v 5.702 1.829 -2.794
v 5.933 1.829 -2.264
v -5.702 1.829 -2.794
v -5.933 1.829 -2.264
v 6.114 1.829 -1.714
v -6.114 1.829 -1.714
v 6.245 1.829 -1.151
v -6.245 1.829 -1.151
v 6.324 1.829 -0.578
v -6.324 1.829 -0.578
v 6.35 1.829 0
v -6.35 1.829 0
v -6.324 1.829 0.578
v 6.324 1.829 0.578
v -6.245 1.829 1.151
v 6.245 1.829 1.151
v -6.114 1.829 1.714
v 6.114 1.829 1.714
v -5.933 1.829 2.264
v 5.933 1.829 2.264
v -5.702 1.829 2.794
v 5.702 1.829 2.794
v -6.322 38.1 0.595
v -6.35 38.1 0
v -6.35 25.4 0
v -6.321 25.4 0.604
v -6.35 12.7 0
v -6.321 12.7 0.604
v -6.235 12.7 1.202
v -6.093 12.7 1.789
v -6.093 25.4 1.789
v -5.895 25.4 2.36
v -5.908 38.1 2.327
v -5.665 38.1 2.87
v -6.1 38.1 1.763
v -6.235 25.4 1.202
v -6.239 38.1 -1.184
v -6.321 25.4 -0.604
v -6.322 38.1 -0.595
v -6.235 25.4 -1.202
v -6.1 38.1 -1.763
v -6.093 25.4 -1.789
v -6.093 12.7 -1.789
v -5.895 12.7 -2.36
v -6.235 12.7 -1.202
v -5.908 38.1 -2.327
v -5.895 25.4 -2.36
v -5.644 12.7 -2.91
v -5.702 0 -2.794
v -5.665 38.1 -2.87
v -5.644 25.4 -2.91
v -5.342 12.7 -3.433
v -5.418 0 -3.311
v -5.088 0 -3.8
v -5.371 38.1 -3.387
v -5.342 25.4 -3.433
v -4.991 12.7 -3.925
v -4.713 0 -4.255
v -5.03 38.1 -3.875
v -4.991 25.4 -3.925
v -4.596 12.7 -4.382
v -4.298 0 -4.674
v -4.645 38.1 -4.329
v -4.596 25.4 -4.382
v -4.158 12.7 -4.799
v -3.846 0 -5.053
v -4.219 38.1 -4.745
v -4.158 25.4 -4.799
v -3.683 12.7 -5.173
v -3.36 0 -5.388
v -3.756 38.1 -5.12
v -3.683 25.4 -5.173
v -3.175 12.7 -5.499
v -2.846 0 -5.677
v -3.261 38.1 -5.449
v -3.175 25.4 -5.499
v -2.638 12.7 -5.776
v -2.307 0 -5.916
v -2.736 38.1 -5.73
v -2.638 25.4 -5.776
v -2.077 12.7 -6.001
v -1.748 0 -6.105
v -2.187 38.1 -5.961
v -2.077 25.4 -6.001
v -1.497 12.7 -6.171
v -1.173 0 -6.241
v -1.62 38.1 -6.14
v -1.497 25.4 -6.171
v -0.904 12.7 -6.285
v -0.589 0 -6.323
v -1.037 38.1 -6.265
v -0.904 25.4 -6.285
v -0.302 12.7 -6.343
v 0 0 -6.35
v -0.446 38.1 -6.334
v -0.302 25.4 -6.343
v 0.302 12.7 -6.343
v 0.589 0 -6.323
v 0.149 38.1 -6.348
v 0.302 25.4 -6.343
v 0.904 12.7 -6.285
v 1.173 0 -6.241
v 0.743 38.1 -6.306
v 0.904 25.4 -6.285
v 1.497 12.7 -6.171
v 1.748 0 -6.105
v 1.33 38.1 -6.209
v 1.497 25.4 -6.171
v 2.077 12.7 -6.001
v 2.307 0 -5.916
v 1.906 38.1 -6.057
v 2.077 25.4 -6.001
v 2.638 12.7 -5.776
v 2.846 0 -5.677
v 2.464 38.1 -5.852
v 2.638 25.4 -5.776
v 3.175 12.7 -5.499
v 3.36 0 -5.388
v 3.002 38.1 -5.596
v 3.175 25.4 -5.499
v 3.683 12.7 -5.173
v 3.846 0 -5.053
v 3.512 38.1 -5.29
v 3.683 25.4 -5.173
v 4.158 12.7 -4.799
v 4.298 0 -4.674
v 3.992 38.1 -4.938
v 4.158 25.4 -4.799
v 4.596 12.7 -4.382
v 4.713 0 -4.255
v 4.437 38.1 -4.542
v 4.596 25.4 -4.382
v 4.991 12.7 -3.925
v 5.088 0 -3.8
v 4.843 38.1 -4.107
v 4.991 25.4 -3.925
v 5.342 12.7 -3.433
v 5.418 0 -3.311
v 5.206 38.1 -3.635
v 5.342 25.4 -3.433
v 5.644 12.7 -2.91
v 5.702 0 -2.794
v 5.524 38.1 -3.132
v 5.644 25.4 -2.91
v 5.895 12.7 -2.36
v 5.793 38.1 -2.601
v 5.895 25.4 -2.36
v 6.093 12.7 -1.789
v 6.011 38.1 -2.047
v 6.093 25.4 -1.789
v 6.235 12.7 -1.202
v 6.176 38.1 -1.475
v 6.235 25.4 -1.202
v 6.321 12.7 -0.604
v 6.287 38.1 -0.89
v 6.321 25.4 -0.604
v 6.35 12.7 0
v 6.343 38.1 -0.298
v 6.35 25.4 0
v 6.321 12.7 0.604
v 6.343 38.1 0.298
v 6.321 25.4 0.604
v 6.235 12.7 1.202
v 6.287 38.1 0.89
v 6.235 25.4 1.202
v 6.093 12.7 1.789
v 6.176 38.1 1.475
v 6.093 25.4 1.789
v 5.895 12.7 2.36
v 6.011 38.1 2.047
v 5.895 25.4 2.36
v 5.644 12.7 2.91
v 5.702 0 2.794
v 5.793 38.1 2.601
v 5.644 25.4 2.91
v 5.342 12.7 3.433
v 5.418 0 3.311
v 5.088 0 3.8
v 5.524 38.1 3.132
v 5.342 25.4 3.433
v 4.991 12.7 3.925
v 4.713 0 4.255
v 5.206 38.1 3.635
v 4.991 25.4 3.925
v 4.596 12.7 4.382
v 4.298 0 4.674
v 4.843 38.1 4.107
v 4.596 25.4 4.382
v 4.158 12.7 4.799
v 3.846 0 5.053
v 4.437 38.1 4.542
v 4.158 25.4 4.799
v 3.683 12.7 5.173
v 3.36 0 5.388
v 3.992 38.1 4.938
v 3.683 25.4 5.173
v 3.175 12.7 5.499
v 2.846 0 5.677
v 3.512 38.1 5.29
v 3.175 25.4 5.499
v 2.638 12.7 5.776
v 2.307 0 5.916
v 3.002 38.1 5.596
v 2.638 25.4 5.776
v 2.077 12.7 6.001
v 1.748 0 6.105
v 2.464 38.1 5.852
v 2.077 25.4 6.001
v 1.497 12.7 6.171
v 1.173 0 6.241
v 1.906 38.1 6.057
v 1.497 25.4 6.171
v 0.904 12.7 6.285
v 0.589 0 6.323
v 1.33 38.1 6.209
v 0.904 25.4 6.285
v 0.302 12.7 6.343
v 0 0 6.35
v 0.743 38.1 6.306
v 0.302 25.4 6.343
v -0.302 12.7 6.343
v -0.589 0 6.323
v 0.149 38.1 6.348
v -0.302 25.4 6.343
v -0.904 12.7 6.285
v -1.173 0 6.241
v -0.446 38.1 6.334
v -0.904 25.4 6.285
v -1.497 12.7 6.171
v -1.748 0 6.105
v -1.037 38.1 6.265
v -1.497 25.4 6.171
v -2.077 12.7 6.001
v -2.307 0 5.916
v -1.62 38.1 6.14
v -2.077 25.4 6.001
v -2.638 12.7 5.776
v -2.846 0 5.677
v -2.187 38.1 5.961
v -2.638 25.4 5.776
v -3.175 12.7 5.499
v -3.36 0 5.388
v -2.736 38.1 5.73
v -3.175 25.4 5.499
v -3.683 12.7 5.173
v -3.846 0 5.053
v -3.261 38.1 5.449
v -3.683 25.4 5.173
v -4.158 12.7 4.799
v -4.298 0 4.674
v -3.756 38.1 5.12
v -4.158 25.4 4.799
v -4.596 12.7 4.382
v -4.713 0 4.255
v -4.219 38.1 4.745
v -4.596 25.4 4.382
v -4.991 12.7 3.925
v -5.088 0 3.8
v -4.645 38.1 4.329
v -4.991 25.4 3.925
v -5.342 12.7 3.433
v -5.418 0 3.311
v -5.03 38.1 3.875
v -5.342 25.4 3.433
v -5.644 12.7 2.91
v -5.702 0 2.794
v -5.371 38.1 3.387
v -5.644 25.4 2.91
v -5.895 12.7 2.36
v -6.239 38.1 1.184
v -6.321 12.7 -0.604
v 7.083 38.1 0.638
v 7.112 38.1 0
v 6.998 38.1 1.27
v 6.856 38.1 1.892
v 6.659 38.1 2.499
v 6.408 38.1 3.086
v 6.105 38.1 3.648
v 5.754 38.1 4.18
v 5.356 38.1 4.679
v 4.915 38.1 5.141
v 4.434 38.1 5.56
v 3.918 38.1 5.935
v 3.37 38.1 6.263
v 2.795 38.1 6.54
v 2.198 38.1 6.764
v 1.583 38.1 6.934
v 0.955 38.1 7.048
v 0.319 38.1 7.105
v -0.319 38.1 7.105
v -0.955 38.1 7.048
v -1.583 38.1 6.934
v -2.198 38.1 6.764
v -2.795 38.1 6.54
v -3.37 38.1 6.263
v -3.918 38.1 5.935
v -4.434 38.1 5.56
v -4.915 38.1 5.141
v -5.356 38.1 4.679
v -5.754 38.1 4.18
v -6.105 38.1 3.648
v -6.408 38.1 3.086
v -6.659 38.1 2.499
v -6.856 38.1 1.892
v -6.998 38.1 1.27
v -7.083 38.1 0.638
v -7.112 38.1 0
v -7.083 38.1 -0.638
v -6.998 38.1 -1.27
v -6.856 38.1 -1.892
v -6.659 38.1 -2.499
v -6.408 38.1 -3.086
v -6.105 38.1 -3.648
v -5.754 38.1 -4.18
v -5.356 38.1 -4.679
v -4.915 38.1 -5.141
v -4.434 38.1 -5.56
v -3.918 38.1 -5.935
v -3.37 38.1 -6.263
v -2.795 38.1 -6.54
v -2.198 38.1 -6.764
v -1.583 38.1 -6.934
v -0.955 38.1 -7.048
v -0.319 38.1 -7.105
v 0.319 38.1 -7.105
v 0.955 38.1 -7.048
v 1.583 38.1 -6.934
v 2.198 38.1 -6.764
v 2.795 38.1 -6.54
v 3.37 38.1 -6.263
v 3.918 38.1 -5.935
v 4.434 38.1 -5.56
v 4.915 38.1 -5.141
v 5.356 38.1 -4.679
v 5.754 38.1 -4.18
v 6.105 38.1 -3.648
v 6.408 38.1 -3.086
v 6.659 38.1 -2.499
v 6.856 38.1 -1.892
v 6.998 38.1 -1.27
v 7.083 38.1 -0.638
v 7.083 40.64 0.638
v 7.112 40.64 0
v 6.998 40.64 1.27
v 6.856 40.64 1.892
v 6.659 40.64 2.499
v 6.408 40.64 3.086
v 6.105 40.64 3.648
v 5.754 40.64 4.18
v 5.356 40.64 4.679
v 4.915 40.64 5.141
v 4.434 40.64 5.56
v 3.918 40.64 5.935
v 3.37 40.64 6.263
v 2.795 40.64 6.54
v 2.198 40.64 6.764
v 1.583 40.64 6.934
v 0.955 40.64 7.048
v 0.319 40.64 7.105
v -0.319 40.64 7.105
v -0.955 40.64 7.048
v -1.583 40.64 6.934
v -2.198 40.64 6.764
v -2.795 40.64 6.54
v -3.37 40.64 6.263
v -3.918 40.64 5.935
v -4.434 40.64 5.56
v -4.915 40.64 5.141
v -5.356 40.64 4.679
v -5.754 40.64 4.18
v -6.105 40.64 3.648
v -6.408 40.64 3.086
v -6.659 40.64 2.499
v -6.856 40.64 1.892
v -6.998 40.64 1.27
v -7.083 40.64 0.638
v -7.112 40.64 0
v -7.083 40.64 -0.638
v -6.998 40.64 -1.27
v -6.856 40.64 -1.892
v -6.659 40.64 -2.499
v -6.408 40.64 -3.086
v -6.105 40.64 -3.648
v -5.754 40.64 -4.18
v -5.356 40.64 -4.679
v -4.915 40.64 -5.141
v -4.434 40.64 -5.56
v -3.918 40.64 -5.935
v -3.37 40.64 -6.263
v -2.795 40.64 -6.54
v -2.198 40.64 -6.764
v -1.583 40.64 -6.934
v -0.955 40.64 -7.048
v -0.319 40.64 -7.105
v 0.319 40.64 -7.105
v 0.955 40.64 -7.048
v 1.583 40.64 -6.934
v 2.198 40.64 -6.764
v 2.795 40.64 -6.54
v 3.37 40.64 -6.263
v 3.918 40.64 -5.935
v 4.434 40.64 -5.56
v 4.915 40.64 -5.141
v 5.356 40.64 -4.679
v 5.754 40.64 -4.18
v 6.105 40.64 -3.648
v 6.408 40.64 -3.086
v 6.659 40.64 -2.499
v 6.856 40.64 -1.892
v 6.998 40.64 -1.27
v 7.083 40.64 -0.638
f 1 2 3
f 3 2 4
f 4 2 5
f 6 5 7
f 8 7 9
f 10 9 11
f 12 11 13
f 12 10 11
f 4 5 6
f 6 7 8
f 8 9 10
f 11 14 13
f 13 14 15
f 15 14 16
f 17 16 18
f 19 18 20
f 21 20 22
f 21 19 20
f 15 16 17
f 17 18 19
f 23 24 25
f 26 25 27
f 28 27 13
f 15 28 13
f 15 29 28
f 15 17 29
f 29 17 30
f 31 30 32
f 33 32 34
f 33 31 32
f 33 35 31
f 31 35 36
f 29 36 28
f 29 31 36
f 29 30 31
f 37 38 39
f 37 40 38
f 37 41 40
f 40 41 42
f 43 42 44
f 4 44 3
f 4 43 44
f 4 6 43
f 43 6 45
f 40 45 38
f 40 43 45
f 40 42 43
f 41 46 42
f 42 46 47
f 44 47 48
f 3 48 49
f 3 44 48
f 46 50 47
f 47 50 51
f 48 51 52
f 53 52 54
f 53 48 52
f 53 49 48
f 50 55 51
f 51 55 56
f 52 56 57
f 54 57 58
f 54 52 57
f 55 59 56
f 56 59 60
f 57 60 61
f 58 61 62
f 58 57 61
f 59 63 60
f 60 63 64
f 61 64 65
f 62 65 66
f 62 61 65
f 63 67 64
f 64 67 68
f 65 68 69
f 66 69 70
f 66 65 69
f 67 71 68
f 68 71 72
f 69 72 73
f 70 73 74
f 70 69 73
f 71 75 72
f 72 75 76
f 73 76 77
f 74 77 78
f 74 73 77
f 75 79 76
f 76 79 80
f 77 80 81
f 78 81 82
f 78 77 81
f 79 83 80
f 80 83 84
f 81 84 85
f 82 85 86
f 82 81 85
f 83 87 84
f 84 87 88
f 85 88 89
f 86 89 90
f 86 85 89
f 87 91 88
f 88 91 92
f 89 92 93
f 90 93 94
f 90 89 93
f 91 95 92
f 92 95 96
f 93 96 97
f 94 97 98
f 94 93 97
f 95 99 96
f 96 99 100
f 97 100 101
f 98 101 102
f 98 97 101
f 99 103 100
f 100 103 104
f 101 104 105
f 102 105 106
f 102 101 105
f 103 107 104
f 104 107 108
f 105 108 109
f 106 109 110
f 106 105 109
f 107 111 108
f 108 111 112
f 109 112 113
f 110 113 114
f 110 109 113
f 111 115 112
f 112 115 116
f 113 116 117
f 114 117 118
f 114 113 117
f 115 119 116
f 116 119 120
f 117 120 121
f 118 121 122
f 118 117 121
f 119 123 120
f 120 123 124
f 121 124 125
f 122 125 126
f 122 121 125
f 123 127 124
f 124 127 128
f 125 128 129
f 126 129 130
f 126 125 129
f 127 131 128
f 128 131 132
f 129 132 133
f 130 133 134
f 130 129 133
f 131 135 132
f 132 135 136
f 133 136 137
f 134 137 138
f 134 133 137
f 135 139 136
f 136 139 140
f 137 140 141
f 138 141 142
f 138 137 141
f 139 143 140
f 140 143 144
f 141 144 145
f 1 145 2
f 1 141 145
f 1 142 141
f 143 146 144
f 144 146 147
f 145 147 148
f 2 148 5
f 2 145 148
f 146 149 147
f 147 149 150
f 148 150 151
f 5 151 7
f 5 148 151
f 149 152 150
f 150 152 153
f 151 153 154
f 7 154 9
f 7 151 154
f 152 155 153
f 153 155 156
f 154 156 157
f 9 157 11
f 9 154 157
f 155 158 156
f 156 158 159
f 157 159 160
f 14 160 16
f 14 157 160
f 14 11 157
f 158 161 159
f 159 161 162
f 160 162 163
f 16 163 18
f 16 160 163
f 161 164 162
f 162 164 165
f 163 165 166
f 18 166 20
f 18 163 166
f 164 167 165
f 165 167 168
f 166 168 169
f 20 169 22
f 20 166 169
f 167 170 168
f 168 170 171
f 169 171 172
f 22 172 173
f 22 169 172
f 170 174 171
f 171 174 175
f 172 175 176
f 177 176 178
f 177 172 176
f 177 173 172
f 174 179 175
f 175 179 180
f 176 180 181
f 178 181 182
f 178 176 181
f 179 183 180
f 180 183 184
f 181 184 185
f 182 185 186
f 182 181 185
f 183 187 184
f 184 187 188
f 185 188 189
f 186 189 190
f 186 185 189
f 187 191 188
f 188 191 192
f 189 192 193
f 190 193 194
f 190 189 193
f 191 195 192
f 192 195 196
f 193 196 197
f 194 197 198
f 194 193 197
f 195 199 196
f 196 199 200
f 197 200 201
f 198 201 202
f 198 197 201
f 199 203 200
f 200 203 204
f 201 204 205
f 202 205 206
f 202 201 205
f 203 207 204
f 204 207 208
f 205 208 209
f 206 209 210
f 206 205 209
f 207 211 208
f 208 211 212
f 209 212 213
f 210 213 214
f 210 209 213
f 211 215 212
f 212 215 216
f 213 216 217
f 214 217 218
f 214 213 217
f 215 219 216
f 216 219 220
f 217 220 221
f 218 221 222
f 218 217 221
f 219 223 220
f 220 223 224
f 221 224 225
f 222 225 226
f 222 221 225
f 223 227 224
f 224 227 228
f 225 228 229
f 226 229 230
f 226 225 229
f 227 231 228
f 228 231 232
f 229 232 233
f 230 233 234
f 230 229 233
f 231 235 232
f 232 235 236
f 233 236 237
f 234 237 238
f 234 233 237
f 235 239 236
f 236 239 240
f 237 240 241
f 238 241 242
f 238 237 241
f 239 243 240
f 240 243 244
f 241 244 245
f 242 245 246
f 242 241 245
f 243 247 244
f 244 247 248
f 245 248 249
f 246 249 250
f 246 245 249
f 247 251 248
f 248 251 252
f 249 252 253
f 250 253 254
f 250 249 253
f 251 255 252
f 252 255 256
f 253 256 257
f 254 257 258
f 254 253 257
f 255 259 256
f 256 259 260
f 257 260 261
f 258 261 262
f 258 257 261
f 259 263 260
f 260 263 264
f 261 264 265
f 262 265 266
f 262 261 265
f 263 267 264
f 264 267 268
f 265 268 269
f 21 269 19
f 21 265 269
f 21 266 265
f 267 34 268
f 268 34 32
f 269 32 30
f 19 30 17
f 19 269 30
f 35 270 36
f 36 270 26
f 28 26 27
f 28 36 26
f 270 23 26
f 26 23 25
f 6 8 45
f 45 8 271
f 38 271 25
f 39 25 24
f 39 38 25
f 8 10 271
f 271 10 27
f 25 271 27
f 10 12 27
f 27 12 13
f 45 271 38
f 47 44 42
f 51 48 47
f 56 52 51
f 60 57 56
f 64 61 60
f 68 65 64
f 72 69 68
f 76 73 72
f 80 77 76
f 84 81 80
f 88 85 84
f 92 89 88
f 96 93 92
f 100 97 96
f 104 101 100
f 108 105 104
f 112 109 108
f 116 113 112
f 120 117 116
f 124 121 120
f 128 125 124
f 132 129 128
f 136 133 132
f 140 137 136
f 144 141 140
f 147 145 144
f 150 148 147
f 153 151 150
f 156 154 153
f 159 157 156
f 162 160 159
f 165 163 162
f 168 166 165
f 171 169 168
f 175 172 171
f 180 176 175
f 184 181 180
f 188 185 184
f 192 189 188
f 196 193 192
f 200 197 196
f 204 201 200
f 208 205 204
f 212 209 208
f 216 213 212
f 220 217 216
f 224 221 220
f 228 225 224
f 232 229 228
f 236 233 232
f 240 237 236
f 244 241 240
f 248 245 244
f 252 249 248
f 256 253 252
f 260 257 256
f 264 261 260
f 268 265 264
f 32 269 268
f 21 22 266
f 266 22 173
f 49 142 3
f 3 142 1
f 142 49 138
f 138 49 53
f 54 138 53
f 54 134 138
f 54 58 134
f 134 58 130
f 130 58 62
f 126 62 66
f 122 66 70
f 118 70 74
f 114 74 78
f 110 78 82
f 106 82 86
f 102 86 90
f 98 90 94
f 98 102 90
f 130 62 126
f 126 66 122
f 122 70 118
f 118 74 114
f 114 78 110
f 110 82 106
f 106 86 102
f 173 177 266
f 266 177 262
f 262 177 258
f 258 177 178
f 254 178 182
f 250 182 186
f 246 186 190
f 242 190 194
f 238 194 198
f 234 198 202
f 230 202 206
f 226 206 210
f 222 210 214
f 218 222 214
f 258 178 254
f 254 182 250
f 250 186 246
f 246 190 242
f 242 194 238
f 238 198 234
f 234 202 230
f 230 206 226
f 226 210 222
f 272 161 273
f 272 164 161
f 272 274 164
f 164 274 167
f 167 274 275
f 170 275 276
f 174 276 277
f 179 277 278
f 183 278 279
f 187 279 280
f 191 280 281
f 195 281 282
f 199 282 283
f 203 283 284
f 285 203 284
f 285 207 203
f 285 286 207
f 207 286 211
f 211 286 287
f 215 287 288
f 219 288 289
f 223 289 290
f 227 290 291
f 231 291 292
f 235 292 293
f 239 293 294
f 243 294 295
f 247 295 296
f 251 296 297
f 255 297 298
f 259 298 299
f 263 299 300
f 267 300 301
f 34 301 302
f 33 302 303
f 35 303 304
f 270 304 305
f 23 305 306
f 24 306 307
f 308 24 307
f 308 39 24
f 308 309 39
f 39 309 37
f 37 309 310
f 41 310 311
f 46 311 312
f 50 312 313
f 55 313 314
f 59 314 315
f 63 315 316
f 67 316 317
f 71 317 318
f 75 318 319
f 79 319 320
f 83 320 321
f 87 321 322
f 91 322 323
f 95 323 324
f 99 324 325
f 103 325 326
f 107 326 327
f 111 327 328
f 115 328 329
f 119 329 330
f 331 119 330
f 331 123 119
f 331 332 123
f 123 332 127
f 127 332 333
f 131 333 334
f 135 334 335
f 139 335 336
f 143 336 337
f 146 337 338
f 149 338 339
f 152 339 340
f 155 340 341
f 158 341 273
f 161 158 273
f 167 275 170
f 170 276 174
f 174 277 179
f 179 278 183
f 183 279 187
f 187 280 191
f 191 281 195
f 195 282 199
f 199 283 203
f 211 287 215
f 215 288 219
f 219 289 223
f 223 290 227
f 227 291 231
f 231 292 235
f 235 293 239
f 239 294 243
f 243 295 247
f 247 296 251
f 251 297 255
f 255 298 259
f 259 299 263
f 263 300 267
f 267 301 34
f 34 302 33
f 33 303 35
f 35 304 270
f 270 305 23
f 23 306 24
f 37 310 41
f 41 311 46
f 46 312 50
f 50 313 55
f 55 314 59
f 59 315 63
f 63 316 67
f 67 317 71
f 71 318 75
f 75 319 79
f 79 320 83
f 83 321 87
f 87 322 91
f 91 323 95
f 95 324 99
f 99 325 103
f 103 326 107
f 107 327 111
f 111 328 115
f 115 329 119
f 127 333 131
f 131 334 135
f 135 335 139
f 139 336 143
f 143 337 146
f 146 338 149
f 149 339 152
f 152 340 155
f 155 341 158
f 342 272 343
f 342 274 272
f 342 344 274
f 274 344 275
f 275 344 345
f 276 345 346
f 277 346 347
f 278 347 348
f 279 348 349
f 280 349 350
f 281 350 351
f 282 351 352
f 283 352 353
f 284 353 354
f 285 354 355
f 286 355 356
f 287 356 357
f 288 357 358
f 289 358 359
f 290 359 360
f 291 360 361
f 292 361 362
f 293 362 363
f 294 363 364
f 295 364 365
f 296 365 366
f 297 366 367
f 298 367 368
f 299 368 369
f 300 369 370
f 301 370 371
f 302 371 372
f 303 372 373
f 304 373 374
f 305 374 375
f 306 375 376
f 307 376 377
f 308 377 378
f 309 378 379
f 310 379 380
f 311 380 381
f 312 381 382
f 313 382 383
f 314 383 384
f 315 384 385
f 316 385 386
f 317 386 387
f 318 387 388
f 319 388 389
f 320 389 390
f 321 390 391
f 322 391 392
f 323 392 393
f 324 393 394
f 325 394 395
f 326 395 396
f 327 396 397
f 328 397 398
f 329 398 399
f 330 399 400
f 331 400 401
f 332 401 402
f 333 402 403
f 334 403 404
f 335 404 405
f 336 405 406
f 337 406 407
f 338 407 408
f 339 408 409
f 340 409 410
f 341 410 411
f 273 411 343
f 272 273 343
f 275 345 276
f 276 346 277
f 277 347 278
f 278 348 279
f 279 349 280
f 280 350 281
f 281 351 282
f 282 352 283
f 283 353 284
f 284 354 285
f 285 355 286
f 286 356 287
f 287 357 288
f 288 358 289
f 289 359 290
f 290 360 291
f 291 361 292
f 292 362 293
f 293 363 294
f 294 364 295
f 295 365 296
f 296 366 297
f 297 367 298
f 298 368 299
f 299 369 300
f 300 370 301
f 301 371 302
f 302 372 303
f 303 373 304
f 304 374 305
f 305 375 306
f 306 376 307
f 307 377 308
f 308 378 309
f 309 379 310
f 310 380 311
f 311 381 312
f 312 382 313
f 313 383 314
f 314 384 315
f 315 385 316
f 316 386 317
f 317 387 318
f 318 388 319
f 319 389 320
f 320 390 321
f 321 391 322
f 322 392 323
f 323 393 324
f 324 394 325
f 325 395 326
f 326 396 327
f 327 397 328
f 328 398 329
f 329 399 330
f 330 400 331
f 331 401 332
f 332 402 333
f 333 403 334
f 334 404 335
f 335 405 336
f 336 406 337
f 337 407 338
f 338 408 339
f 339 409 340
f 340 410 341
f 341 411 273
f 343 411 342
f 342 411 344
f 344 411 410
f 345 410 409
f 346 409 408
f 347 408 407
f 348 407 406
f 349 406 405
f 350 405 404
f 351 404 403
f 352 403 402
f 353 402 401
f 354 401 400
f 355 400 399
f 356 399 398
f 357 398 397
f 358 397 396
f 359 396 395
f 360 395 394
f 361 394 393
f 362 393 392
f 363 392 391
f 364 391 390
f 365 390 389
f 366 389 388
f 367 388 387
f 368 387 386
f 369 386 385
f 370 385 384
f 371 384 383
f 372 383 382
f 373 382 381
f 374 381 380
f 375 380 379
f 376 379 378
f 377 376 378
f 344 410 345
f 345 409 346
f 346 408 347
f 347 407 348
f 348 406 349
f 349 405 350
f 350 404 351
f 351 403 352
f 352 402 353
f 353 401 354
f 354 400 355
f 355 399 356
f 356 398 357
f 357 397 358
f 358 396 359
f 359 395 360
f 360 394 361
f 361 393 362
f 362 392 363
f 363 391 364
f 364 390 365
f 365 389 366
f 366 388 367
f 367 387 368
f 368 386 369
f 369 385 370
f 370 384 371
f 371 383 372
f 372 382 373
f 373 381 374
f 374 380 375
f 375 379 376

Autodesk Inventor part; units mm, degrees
ref_plane "YZ Plane" through (0, 0, 0) normal (1, 0, 0) x (0, 1, 0)
ref_plane "XZ Plane" through (0, 0, 0) normal (0, 1, 0) x (-1, 0, 0)
ref_plane "XY Plane" through (0, 0, 0) normal (0, 0, 1) x (1, 0, 0)
sketch "Sketch1" plane through (0, 0, 0) normal (0, 1, 0) x (-1, 0, 0)
  circle A0 centre (0, 0) radius 6.35
  dimension "d0" = 12.7
extrude "Extrusion1" add sketch "Sketch1" along normal blind 38.1
sketch "Sketch2" plane through (0, 38.1, 0) normal (0, 1, 0) x (1, 0, 0)
  circle A0 centre (0, 0) radius 7.112
  dimension "d3" = 14.224
extrude "Extrusion2" add sketch "Sketch2" along normal blind 2.54
sketch "Sketch3" plane through (0, 0, 0) normal (0, -1, 0) x (1, 0, 0)
  line L0 (-6.35, -2.794) -> (6.35, -2.794)
  line L1 (6.35, -2.794) -> (6.35, 2.794)
  line L2 (6.35, 2.794) -> (-6.35, 2.794)
  line L3 (-6.35, 2.794) -> (-6.35, -2.794)
  point P0 (0, 0)
  dimension "d6" = 5.588
extrude "Extrusion3" cut sketch "Sketch3" against normal blind 1.27
sketch "Sketch4" plane through (0, 1.27, 0) normal (0, -1, 0) x (1, 0, 0)
  point P0 (0, 0)
sketch "Sketch5" plane through (0, 1.27, 0) normal (0, -1, 0) x (1, 0, 0)
  line L0 (8.174, 2.794) -> (-7.6116, 2.794)
  line L1 (-7.6116, 2.794) -> (-7.6116, -2.794)
  line L2 (-7.6116, -2.794) -> (8.174, -2.794)
  line L3 (8.174, -2.794) -> (8.174, 2.794)
  point P0 (0, 0)
extrude "Extrusion4" cut sketch "Sketch5" against normal blind 0.5588
properties part number "key ejector"
